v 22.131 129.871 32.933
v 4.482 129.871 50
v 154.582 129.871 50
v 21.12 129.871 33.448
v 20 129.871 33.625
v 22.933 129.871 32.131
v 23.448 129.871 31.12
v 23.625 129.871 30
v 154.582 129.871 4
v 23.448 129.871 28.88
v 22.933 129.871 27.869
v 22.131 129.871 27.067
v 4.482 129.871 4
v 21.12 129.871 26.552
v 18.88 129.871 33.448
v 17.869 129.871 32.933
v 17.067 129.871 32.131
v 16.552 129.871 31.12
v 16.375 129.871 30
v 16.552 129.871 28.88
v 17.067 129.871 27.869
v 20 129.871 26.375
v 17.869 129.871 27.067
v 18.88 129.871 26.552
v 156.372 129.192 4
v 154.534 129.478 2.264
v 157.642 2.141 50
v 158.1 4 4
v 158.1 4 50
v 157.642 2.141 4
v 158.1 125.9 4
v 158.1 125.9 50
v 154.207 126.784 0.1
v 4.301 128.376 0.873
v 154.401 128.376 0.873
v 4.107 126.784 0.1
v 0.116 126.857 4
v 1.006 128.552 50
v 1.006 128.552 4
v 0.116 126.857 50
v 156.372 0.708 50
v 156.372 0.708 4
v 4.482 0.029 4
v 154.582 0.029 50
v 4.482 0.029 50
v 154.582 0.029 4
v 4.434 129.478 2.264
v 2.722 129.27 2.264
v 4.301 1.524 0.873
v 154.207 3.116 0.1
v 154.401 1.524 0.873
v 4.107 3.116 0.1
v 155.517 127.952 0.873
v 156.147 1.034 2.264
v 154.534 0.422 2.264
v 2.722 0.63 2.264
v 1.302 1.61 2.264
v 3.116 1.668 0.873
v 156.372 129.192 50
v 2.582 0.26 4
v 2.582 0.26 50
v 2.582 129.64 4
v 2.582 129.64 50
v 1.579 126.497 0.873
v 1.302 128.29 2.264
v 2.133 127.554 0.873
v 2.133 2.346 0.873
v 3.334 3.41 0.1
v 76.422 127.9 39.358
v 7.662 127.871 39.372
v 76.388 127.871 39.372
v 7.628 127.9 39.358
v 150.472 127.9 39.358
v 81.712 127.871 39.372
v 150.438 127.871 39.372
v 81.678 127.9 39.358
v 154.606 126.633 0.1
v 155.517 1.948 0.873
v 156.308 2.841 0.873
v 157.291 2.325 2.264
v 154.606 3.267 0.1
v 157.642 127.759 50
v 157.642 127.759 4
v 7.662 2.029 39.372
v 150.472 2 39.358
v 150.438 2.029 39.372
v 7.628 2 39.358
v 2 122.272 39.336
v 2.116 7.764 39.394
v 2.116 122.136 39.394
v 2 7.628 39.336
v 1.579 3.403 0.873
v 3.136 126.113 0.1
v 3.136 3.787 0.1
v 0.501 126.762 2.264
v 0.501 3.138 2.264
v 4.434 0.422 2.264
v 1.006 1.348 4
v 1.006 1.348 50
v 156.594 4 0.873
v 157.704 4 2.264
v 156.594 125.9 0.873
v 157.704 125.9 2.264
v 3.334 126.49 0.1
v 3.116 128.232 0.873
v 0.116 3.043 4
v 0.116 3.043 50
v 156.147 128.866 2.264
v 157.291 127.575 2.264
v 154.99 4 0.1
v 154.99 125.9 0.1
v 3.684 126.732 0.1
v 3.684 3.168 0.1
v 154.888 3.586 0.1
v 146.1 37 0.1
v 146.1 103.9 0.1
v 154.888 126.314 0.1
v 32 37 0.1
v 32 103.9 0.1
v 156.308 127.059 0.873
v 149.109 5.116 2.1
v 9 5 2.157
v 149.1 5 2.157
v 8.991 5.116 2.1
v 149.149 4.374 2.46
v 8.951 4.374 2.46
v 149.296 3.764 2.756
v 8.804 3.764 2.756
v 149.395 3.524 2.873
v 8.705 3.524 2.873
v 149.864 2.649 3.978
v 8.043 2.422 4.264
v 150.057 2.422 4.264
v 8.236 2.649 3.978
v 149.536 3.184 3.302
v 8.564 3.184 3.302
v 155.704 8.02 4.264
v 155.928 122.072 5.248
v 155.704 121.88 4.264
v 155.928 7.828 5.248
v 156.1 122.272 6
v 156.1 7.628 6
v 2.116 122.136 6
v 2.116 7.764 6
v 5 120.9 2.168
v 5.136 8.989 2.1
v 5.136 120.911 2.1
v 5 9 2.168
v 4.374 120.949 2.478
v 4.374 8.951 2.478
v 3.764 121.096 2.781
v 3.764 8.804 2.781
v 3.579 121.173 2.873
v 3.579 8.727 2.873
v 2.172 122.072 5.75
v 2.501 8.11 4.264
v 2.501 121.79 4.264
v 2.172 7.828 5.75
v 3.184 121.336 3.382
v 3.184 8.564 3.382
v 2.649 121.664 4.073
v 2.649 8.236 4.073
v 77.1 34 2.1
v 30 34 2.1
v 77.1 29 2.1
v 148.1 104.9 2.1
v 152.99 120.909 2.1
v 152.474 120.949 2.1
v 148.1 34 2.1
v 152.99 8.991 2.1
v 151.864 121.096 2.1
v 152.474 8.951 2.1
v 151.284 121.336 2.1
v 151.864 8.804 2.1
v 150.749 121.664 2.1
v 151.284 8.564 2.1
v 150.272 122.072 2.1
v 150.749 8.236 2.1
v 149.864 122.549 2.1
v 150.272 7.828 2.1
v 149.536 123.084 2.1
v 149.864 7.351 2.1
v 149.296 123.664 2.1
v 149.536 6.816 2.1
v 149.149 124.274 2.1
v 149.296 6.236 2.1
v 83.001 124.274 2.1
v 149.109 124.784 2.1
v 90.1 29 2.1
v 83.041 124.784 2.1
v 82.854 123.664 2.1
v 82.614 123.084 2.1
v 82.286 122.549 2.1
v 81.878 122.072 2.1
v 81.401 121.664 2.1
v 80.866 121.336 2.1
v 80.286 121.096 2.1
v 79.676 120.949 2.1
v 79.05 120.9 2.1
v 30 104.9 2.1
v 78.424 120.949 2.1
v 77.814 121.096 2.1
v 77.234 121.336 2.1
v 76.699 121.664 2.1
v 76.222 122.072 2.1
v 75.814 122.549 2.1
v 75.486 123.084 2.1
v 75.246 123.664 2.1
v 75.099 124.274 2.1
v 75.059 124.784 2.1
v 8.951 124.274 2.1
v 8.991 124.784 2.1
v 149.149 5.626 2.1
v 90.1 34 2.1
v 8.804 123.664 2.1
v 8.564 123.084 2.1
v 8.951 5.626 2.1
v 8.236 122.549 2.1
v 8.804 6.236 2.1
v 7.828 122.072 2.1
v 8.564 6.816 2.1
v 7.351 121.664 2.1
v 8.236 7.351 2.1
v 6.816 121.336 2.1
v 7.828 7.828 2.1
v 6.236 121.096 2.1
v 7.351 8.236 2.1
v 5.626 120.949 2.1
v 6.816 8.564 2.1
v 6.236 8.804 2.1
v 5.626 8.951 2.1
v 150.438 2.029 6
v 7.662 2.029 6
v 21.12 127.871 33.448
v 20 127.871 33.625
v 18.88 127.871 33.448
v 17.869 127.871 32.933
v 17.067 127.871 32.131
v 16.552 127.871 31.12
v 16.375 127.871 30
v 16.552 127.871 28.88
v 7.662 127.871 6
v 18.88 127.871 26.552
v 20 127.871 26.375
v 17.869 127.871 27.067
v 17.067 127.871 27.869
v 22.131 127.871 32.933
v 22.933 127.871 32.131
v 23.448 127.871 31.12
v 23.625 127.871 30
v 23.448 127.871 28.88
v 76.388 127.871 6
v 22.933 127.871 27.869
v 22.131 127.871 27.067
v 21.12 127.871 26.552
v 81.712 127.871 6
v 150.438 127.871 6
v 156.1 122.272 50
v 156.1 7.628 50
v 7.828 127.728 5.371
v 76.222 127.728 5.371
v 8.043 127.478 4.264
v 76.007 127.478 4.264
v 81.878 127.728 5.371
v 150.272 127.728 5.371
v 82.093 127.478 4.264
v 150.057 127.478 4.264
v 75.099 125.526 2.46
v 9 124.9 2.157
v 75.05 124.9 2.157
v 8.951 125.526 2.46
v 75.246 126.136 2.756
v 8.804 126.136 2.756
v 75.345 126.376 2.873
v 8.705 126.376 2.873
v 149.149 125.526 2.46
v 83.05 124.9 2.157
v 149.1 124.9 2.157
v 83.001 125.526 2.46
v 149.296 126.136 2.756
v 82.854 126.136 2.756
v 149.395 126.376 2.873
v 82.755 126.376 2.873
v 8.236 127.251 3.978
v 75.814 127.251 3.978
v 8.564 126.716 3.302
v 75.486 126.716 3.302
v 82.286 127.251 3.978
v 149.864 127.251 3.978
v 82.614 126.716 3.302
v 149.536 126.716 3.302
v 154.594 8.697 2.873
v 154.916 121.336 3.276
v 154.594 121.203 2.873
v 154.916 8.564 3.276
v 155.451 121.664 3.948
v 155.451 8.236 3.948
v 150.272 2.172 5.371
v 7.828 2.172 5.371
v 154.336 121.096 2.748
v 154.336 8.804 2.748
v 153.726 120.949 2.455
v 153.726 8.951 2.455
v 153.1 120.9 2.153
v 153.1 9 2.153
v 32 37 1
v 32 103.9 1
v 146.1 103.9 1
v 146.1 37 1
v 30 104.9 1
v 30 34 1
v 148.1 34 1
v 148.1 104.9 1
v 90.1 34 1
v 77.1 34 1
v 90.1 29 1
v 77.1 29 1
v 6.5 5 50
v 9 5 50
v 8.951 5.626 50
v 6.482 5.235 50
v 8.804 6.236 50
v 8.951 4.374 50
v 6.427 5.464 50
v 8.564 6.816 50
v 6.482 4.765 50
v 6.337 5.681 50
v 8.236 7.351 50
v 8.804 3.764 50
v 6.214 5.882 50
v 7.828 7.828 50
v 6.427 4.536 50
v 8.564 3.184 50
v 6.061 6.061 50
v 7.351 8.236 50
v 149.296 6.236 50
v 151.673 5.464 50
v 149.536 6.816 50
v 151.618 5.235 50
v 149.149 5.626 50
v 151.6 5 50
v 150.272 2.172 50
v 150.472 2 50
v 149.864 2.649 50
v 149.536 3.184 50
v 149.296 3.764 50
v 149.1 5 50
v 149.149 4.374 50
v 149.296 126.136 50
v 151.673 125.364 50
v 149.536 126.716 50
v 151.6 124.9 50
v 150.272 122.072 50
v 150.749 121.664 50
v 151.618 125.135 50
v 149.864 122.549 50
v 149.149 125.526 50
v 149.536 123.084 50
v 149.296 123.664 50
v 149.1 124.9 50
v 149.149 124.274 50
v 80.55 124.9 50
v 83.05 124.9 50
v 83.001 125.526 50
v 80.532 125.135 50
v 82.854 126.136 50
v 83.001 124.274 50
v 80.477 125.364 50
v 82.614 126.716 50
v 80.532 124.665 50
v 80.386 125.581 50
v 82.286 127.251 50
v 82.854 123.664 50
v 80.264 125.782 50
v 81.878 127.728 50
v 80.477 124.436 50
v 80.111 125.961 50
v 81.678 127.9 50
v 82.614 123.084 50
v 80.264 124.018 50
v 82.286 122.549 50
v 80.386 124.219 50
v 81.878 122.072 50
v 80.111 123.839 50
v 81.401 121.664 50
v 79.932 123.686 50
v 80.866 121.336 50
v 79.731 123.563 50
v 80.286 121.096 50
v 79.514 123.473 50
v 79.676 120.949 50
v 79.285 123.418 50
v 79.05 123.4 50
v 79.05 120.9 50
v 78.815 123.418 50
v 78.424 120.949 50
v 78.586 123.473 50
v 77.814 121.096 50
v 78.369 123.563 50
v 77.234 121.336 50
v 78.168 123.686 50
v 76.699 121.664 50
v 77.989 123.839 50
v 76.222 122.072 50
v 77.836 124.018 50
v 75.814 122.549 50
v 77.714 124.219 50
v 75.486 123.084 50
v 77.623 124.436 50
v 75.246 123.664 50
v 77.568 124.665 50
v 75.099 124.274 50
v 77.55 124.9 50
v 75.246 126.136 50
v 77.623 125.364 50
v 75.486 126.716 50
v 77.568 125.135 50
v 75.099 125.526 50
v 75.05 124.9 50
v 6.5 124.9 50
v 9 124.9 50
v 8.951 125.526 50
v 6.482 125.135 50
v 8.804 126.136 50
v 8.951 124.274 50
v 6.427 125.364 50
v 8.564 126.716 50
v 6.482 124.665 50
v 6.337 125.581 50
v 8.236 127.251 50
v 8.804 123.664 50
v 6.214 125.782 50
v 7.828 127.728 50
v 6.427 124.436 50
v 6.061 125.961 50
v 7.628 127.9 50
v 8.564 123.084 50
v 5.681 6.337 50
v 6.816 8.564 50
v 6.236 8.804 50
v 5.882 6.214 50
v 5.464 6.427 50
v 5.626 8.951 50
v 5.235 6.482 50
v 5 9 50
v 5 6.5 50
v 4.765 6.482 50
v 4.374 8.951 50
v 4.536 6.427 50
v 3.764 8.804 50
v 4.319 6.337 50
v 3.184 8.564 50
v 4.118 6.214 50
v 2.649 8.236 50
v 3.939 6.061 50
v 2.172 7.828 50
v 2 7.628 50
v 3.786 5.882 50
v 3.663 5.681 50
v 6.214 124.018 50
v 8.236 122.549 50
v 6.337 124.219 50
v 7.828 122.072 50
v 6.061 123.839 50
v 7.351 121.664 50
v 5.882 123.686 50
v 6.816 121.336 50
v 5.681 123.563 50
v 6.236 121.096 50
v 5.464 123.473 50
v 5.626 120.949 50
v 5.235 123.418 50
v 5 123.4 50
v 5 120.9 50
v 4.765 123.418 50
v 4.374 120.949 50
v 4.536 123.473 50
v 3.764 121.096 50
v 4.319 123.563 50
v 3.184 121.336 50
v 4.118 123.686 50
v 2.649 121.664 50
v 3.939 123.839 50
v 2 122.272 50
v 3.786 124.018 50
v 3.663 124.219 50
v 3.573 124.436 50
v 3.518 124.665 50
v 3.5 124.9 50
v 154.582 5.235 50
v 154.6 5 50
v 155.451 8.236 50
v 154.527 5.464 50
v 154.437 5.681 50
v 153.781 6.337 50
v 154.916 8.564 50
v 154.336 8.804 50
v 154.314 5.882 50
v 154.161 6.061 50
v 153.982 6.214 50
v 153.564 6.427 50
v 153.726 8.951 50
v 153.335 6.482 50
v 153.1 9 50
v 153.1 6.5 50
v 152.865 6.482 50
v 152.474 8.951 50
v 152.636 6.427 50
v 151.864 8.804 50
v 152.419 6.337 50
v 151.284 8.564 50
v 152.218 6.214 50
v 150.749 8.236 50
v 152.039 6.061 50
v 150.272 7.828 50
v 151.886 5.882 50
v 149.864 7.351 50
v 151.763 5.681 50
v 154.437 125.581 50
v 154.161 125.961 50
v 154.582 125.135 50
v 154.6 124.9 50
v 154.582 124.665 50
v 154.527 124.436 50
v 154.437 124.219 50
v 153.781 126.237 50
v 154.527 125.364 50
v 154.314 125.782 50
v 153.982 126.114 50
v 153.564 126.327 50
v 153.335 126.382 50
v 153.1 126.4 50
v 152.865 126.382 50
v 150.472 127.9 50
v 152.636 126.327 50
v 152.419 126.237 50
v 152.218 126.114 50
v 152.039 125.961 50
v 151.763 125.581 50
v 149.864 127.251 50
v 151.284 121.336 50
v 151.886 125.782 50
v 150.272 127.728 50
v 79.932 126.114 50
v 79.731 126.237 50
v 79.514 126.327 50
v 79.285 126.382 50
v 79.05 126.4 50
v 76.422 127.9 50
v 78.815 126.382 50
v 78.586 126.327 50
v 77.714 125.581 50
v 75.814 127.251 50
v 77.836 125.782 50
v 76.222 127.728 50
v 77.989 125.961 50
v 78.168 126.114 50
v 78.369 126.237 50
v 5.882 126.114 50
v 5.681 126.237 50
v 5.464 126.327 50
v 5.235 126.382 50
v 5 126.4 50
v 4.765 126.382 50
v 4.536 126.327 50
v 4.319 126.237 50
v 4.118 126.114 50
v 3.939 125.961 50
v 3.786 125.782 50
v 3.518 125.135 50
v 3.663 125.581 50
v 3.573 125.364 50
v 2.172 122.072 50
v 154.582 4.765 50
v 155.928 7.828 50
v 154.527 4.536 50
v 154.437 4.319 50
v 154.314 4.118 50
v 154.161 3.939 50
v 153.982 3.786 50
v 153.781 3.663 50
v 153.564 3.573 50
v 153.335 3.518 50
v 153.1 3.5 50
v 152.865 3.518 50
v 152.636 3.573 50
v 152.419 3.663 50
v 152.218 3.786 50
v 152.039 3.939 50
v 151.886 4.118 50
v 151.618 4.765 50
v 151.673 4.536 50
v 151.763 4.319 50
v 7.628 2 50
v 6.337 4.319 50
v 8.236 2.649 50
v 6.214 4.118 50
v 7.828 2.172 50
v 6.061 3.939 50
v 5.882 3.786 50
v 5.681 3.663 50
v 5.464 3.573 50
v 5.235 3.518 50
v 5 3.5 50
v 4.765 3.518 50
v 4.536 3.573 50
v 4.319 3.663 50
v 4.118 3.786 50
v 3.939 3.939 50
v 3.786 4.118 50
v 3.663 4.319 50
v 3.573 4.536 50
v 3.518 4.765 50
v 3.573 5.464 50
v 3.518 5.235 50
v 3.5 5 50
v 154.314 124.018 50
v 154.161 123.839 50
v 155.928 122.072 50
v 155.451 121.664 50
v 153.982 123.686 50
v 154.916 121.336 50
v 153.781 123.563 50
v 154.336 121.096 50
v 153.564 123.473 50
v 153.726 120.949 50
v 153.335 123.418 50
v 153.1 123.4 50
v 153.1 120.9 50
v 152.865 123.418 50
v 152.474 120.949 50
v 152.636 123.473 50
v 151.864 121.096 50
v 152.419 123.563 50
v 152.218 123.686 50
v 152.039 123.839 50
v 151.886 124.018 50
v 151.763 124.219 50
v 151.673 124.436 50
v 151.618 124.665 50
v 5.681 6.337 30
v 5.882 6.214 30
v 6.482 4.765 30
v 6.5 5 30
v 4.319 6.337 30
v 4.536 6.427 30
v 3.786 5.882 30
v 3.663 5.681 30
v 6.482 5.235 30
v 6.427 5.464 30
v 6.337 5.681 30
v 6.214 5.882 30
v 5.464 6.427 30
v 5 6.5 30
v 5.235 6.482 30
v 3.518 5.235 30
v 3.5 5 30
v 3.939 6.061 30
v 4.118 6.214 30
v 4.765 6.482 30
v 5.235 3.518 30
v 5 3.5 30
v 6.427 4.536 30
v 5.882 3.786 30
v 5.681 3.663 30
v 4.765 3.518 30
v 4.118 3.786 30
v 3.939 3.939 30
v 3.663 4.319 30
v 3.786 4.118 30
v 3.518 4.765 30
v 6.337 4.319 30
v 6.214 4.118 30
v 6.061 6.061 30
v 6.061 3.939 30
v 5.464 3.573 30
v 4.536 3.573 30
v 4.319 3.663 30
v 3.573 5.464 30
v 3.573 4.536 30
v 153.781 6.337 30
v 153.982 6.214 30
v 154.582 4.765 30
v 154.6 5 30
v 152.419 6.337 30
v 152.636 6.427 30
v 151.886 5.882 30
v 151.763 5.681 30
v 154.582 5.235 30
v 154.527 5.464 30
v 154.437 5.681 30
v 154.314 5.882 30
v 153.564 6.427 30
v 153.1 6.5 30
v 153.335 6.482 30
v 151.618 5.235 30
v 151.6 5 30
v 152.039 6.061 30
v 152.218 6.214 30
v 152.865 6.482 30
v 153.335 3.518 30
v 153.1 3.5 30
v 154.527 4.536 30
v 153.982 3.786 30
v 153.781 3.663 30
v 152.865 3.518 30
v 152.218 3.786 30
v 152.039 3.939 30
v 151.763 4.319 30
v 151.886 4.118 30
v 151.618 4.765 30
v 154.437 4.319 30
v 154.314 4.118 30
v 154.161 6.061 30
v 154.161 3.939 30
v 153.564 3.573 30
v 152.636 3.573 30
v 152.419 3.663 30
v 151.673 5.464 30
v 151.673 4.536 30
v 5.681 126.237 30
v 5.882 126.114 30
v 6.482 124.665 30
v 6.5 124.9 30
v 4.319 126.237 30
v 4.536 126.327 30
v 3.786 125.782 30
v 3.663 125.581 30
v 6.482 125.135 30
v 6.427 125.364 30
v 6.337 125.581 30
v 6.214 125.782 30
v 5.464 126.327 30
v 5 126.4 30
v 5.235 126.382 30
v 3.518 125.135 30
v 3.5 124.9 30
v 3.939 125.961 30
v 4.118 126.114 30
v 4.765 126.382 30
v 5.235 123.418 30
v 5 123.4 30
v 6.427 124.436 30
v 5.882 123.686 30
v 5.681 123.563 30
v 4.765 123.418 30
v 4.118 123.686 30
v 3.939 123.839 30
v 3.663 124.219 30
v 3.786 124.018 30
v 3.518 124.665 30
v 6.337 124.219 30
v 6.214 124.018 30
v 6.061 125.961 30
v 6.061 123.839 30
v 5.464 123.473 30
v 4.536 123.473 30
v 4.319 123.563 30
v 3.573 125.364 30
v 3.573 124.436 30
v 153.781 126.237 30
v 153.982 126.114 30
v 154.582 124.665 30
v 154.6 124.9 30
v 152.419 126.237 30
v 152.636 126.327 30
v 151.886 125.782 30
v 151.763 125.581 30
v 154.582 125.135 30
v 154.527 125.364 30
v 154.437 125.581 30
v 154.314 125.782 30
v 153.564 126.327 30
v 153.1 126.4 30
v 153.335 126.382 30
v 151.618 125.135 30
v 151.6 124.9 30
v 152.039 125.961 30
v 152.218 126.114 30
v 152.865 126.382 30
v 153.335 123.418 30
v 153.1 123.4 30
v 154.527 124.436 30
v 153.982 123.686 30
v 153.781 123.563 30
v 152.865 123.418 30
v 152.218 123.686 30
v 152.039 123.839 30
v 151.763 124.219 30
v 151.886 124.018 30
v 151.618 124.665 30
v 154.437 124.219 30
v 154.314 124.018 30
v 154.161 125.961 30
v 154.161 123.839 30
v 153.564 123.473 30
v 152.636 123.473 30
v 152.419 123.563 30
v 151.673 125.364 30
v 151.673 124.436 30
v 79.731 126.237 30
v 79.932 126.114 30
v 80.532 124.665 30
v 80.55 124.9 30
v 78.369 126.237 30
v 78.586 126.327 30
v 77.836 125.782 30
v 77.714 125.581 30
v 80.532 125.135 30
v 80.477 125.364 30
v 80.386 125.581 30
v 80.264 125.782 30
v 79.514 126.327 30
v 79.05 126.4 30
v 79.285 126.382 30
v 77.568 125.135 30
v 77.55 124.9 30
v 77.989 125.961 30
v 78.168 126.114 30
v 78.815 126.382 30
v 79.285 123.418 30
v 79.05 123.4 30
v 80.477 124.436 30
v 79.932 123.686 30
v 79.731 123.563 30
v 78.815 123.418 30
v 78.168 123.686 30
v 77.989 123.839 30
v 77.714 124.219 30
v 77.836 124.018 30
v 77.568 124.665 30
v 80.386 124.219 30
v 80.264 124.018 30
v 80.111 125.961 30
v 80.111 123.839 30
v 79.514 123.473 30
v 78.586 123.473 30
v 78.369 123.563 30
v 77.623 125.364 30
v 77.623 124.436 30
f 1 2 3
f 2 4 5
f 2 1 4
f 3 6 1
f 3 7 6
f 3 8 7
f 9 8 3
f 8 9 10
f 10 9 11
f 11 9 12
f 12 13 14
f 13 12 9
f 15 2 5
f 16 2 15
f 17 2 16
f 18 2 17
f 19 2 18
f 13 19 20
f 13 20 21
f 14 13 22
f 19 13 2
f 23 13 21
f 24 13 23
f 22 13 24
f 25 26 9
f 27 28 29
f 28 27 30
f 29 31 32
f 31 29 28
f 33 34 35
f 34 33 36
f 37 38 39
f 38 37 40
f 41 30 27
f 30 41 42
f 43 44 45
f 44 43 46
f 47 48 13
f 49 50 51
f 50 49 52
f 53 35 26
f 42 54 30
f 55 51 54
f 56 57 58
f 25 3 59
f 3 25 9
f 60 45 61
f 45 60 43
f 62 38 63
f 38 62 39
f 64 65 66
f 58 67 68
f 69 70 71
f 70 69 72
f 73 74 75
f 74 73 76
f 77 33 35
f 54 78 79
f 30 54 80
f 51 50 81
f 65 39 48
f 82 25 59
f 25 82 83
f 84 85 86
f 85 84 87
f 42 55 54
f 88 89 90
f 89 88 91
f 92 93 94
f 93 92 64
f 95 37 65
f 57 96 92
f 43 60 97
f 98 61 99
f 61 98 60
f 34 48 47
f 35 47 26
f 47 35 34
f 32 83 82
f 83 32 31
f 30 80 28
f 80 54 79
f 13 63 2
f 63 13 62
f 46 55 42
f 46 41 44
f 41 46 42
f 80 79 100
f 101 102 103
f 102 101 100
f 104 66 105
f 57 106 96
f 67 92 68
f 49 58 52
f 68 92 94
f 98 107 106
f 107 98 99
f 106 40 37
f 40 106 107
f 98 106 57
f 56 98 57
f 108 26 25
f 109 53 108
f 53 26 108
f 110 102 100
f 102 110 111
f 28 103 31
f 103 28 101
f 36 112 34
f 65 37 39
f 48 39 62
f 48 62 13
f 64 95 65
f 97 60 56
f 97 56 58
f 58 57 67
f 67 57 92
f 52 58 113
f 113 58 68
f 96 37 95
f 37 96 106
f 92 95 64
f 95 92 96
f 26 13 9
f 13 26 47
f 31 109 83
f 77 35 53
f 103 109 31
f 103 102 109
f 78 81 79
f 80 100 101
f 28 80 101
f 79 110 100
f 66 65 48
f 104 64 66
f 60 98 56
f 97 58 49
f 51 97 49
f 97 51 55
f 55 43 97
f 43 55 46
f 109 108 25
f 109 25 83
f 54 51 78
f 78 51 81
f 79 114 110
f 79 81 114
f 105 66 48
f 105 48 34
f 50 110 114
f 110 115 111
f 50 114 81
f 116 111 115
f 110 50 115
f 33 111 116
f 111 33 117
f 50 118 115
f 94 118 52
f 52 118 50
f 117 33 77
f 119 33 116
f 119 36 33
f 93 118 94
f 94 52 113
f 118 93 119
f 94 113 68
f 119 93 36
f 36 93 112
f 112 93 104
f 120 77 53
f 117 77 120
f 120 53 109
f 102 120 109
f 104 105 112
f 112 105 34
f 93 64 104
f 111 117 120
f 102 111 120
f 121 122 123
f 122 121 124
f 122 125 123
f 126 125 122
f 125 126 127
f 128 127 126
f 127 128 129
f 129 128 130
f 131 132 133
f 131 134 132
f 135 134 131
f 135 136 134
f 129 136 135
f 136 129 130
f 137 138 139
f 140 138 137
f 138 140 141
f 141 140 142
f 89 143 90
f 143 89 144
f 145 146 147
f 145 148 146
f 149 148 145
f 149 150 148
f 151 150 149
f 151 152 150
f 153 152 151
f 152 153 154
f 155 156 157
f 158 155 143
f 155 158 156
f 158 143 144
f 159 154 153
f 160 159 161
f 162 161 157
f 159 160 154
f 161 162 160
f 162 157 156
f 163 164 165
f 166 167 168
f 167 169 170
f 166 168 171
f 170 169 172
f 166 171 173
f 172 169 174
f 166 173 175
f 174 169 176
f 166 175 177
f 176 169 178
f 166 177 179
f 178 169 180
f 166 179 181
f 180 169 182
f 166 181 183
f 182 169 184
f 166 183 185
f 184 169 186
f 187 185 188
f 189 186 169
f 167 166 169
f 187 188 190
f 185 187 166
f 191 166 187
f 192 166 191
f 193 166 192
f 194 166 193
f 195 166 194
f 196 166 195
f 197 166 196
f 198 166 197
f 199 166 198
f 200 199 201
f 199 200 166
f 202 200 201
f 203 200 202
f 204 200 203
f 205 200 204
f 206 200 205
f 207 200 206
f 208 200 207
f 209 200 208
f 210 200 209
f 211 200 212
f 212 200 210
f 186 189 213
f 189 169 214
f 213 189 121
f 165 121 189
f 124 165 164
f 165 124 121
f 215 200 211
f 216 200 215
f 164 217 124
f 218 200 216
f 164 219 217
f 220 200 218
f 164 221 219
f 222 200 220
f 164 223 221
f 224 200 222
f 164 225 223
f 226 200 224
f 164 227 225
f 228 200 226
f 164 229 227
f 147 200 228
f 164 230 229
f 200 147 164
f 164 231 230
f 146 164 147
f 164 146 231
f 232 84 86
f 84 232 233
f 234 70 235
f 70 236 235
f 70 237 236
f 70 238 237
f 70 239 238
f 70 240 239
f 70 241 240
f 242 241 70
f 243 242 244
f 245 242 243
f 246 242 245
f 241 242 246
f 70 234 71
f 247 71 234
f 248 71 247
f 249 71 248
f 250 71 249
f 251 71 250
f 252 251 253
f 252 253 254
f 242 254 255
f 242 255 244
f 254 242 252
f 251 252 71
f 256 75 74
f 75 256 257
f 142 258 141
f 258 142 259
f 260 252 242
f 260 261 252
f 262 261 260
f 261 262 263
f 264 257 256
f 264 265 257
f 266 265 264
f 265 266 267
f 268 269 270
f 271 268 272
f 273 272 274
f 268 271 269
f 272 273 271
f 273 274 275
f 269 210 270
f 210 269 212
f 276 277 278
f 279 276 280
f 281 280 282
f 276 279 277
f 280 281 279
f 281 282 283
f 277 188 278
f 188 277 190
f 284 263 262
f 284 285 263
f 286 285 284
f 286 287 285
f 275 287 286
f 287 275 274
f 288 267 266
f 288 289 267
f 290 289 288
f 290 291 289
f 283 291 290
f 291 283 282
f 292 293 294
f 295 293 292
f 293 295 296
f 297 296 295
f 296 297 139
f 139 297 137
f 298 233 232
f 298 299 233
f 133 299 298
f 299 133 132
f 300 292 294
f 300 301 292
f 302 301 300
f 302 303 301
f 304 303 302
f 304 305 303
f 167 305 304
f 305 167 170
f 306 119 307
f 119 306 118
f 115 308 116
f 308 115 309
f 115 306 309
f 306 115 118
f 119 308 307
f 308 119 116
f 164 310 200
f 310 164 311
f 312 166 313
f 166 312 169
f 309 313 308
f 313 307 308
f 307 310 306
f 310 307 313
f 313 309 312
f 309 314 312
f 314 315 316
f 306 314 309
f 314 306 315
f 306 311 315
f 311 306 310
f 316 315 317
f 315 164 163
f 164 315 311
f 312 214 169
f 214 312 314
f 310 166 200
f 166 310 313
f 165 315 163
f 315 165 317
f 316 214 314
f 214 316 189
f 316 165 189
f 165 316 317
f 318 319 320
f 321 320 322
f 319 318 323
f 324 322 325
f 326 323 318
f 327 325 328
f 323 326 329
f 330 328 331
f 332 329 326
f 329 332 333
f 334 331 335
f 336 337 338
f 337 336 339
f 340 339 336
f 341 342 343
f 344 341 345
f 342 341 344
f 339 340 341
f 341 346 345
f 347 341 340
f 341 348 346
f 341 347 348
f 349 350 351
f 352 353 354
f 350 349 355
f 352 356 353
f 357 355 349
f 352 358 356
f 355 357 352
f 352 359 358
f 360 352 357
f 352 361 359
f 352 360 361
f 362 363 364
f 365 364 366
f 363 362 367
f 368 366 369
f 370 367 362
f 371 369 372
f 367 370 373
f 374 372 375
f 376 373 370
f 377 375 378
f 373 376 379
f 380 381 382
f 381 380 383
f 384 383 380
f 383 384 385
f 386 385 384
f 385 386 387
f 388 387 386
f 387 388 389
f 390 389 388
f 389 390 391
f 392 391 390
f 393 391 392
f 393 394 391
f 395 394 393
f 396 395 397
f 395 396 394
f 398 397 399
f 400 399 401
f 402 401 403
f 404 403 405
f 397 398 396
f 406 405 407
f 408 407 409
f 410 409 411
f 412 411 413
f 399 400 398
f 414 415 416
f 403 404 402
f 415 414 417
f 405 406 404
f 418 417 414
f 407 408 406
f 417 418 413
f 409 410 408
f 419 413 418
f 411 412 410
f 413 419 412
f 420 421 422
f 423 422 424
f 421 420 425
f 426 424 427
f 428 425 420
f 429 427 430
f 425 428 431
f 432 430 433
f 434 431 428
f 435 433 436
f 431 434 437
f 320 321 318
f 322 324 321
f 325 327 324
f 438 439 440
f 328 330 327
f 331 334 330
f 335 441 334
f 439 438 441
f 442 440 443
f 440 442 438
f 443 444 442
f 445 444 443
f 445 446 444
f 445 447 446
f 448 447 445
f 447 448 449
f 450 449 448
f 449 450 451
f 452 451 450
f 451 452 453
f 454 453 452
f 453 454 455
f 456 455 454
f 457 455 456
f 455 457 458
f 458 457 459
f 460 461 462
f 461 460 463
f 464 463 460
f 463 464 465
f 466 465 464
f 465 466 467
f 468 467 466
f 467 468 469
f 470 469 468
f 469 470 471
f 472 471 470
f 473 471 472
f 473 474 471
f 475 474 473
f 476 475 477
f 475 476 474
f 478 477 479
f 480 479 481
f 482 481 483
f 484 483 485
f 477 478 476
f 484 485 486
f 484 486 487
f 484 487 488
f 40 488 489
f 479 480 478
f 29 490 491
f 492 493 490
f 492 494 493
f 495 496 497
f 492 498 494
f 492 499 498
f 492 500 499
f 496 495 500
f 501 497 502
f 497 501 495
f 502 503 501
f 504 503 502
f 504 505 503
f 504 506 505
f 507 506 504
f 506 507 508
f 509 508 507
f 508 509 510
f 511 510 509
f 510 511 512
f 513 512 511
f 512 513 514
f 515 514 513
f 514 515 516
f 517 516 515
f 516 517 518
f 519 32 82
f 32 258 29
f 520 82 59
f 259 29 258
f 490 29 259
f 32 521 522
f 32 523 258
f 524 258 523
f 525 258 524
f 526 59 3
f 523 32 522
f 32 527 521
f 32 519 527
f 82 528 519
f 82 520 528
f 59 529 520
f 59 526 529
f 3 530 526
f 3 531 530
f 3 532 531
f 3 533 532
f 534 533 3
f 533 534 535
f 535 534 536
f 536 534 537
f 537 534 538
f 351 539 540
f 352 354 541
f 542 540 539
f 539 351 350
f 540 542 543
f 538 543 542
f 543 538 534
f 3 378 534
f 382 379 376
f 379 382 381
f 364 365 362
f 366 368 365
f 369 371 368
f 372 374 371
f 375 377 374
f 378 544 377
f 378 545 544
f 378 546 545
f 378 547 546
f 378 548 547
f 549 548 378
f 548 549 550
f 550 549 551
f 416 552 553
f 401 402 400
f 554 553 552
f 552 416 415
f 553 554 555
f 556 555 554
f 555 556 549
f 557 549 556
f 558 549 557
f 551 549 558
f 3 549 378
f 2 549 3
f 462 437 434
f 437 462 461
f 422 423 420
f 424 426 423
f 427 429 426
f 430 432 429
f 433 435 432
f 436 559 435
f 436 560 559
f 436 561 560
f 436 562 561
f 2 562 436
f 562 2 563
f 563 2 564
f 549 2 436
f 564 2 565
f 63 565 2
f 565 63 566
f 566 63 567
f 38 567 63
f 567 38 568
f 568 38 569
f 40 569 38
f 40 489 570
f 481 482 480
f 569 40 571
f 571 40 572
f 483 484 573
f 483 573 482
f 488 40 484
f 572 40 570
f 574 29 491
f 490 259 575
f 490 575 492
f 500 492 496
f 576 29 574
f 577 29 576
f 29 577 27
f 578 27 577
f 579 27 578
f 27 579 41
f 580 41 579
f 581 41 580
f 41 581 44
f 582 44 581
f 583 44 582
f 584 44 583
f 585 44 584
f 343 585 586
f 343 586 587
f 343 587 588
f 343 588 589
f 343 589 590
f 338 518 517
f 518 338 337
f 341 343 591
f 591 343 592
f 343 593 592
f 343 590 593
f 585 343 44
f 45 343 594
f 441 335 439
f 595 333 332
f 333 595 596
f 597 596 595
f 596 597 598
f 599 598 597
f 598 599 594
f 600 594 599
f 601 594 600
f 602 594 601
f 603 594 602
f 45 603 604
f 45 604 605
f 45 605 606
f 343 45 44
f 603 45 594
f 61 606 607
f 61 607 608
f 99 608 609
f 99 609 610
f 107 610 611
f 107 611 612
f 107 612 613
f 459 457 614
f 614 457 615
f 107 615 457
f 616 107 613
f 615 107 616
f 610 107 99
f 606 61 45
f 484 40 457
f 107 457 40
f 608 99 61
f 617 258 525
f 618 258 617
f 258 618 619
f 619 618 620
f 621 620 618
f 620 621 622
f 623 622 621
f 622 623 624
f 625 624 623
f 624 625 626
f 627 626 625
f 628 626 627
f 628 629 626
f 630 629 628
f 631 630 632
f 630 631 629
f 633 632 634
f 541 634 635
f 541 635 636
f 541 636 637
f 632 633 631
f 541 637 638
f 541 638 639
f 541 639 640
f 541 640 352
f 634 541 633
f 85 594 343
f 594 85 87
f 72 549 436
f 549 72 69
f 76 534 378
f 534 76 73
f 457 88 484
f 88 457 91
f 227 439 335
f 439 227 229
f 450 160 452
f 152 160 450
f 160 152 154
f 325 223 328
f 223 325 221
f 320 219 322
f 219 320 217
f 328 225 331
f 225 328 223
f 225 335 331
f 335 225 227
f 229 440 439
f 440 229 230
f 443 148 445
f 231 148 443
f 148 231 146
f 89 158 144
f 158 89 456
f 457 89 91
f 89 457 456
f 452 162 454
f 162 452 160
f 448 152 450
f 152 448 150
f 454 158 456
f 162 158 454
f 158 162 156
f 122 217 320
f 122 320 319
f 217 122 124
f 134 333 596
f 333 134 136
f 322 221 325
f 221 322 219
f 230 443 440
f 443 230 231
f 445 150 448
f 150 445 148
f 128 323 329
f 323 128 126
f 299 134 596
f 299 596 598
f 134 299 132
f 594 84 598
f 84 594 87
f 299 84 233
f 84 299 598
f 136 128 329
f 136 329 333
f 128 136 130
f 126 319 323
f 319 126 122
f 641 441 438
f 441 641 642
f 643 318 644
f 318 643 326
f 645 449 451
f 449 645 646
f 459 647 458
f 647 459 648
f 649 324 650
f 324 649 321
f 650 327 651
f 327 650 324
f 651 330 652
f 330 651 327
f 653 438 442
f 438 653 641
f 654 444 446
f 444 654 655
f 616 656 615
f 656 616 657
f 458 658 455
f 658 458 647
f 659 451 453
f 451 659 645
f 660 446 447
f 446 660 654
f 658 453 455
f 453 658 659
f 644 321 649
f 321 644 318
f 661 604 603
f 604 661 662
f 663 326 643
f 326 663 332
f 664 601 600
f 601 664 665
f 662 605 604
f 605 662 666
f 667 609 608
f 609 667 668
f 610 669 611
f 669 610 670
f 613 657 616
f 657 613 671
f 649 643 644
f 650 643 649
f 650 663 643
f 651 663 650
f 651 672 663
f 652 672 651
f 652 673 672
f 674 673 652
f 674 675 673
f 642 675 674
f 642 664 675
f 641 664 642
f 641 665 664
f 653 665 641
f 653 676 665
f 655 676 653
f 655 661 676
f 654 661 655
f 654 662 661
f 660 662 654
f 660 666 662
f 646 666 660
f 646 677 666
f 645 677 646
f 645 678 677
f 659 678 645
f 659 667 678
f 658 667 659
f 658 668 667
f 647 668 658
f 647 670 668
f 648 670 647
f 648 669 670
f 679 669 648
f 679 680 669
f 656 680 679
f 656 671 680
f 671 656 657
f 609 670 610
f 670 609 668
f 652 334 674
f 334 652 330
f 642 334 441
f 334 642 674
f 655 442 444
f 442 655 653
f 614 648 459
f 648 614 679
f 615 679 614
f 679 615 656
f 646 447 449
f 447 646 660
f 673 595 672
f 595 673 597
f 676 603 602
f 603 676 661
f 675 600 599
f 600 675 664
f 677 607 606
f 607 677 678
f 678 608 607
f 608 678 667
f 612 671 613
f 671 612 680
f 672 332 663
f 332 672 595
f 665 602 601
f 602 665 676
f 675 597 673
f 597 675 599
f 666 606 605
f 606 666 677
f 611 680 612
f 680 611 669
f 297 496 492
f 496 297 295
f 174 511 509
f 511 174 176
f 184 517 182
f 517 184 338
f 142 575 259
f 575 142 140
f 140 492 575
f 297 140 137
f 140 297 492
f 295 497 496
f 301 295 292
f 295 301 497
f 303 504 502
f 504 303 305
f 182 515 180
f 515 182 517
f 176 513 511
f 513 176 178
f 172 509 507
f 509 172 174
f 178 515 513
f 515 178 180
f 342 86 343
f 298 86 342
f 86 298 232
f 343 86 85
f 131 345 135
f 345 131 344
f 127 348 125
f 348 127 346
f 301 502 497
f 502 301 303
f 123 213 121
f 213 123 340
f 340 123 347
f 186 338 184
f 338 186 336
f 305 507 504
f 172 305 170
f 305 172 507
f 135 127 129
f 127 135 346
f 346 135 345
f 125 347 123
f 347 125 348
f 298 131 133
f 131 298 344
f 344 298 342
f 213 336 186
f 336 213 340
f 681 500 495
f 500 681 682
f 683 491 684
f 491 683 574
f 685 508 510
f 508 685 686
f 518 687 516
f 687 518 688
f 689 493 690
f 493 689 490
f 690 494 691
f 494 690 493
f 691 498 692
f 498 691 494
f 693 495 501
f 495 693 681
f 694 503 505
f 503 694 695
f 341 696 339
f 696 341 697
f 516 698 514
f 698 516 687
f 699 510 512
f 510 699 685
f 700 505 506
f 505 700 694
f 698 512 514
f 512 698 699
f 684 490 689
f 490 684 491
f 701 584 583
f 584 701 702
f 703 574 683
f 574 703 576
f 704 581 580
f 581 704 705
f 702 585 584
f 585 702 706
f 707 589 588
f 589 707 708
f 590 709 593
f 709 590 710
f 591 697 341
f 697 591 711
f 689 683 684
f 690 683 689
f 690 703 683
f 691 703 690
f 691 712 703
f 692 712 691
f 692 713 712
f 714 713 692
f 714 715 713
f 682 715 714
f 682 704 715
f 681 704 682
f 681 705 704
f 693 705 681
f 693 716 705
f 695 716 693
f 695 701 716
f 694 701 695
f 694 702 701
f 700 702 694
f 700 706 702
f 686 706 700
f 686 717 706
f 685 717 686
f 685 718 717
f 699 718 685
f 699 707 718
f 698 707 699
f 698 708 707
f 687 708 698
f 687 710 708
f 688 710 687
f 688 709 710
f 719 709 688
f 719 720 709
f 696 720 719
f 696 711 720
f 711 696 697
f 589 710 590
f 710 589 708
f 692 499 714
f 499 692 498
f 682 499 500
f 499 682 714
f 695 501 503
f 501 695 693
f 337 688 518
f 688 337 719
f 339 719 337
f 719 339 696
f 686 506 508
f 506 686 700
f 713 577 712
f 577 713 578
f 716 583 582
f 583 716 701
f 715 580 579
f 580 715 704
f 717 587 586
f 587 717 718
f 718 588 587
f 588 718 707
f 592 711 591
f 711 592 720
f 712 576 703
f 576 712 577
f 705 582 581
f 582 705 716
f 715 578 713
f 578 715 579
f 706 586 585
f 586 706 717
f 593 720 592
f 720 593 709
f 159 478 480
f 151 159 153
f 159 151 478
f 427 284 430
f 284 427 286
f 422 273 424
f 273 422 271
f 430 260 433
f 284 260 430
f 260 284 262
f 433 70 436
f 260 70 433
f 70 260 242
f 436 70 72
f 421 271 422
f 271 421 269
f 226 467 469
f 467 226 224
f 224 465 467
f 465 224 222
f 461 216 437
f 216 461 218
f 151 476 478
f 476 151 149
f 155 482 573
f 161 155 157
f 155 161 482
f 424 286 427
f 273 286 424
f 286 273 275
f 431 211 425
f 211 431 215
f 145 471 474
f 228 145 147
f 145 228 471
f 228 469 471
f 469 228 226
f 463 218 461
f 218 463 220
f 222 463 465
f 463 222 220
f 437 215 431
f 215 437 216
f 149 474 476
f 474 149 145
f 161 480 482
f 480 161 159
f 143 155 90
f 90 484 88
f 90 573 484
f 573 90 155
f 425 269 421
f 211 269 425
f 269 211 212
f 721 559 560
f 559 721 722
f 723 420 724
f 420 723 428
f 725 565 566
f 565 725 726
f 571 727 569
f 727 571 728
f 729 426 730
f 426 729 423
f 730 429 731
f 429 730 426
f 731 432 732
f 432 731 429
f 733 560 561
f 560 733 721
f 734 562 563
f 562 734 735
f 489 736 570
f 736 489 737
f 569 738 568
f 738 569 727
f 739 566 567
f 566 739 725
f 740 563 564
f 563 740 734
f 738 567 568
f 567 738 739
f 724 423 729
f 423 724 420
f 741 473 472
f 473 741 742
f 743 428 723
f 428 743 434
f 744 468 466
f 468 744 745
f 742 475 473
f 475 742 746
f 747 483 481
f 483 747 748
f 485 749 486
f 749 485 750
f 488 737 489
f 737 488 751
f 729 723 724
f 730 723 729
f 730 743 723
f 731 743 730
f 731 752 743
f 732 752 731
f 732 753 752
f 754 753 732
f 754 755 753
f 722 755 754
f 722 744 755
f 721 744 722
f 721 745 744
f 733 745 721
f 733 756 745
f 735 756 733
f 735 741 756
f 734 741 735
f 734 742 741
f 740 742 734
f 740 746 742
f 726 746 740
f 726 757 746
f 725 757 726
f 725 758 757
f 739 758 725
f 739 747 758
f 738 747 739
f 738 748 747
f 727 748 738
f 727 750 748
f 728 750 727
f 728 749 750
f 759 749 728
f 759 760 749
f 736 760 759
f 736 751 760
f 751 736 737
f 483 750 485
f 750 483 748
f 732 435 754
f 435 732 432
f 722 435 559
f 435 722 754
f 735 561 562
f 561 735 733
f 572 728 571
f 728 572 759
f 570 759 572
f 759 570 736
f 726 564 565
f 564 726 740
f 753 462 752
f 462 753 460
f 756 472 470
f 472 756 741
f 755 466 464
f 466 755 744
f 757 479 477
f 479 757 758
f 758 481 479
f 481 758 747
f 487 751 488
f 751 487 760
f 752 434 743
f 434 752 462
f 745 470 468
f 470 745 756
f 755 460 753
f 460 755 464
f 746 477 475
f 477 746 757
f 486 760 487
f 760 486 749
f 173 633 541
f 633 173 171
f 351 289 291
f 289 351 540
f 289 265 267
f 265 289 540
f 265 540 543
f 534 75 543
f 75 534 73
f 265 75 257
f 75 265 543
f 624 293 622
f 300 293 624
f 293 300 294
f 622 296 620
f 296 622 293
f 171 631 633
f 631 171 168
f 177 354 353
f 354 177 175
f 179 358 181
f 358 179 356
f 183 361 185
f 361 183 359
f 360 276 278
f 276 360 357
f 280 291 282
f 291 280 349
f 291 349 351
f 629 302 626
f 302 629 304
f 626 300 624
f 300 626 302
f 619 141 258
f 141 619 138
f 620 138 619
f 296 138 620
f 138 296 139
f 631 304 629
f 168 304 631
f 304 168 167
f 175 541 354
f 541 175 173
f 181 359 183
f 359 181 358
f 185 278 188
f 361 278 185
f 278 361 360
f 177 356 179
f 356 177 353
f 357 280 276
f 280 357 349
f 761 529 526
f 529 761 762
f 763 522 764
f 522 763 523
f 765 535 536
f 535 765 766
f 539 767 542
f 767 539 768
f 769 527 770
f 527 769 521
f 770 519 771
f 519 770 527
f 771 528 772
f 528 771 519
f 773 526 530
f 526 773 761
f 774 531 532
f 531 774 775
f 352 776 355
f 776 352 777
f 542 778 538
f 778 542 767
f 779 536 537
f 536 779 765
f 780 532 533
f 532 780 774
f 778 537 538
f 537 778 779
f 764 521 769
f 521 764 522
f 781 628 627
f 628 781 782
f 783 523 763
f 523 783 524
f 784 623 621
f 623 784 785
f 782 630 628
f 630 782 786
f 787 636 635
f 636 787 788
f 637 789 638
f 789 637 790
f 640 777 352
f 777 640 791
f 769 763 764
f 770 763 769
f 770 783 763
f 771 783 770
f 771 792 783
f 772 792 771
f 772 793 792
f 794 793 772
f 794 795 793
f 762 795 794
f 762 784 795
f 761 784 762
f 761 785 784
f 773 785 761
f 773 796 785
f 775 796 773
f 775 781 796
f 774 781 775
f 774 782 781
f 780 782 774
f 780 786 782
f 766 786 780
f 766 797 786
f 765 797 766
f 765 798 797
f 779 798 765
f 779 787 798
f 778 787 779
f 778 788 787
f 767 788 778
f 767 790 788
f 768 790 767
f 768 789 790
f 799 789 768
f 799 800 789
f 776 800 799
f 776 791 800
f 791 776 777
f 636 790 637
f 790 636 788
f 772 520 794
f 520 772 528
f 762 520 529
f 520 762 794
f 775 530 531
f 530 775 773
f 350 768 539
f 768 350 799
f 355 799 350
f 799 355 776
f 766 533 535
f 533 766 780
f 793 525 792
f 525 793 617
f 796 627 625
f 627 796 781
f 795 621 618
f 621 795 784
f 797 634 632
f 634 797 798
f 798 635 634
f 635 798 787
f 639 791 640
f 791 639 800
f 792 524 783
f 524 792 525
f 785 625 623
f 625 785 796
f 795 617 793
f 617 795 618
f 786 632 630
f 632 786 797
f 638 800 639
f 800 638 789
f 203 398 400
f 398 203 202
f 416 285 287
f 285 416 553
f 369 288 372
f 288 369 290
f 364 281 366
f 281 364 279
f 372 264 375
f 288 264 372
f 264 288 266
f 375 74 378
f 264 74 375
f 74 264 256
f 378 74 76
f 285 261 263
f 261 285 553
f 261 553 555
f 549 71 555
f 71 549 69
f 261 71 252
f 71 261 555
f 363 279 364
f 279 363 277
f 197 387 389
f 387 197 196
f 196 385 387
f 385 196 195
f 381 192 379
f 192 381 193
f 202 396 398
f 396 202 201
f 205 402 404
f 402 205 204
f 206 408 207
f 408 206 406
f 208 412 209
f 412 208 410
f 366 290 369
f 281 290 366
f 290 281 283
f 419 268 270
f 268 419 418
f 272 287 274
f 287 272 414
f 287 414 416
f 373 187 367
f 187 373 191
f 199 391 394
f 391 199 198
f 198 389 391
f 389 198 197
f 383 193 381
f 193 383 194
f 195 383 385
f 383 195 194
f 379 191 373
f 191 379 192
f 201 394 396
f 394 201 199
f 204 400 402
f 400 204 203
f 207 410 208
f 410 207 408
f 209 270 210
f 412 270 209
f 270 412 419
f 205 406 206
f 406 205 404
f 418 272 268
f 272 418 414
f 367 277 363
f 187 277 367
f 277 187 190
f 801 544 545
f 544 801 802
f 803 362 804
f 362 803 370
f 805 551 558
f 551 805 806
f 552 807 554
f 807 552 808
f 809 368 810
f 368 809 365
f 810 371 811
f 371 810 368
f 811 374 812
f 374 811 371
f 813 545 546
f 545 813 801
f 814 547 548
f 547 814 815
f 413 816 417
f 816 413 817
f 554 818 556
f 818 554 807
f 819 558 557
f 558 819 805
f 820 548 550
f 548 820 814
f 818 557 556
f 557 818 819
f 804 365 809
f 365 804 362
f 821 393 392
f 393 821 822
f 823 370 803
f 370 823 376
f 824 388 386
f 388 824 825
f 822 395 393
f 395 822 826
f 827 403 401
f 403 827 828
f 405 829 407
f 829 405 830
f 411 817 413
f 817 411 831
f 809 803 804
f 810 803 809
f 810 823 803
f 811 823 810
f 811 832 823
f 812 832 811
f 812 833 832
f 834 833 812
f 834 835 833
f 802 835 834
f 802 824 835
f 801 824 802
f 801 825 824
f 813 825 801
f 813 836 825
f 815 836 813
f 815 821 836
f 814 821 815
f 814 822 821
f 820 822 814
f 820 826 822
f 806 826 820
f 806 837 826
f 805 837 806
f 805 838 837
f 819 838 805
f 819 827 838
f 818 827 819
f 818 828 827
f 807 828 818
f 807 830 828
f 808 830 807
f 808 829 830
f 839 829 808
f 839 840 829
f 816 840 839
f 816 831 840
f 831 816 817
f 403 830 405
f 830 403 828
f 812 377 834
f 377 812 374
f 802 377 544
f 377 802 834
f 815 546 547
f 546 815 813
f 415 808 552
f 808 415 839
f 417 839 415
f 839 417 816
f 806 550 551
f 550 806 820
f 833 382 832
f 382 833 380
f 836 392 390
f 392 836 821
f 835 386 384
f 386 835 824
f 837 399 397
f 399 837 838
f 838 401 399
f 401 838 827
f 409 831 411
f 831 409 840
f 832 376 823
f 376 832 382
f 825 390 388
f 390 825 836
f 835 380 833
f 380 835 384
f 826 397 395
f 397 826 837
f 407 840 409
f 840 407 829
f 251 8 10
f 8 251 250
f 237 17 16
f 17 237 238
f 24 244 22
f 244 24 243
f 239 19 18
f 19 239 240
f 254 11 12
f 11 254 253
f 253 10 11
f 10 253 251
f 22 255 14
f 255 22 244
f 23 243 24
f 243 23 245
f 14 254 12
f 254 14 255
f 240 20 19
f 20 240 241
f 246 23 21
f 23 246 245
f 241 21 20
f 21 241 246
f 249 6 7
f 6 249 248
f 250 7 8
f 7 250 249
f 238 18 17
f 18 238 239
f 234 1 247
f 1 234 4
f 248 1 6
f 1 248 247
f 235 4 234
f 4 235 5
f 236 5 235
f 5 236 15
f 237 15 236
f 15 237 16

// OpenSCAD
// file: params.scad
module roundedRect(size, radius)
    {
    x = size[0];
    y = size[1];
    z = size[2];

    linear_extrude(height=z)
    hull()
    {
        // place 4 circles in the corners, with the given radius
        translate([radius, radius, 0])
        circle(r=radius);

        translate([x - radius, radius, 0])
        circle(r=radius);

        translate([radius, y - radius, 0])
        circle(r=radius);

        translate([x - radius, y - radius, 0])
        circle(r=radius);
    }
}

module roundedPoly(size, radius)
{
	x = size[0];
	y = size[1];
	z = size[2];

	hull()
	{
		// place 4 circles in the bottom corners, with the given radius
		translate([radius, radius, radius])
		sphere(r=radius);
	
		translate([x - radius, radius, radius])
		sphere(r=radius);
	
		translate([radius, y - radius, radius])
		sphere(r=radius);
	
		translate([x - radius, y - radius, radius])
		sphere(r=radius);
        
        // place 4 circles in the top corners, with the given radius
		translate([radius, radius, z - radius])
		sphere(r=radius);
	
		translate([x - radius, radius, z - radius])
		sphere(r=radius);
	
		translate([radius, y - radius, z - radius])
		sphere(r=radius);
	
		translate([x - radius, y - radius, z - radius])
		sphere(r=radius);
	}
}

module standoff(radius, height, inner_radius, depth=10) {
    difference() {
        cylinder(h=height, r=radius, $fn=40);
        translate([0, 0, height-20]) {
            cylinder(h=20.1, r=inner_radius, $fn=40);
        }
    }
}
    

left_margin = 10;
right_margin = 30;
top_margin = 25;
bottom_margin = 34;
screen_width = 118.1;
screen_height = 70.9;
height = 2;

total_width = left_margin+right_margin+screen_width;
total_height = top_margin+bottom_margin+screen_height;

ribbon_cable_width=13;

wall_thickness = 2;
depth = 50;
standoff_od = 4;

camera_offset_x = 105;
camera_offset_y = 12;
camera_standoff_height = 4.7;

sensor_offset_x = 135;
sensor_offset_y = 15;
// main file
include <params.scad>

difference() {

union() {

difference() {
    roundedPoly([total_width, total_height, depth-10], 4);

    translate([wall_thickness, wall_thickness, height]) {
        roundedPoly([total_width - 2 * wall_thickness, total_height - 2 * wall_thickness, depth*2], 4);
    }
    
    translate([right_margin+2, bottom_margin+3, -0.1]) {
        cube([screen_width-4, screen_height-4, height+0.2]);
    }
    
    translate([right_margin, bottom_margin, 1.0]) {
        cube([screen_width, screen_height, height+0.2]);
    }
    
    translate([right_margin+screen_width-58-ribbon_cable_width, bottom_margin-5, 1.0]) {
        cube([ribbon_cable_width, 5.1, height+0.2]);
    }
    
      
}



// shell

difference() {

    translate([0, 0, 5]) {
            roundedRect([total_width, total_height, depth-5], 4);
        }
        
    translate([wall_thickness, wall_thickness, 4.9]) {
        roundedRect([left_margin+screen_width+right_margin-2*wall_thickness, top_margin+screen_height+bottom_margin-2*wall_thickness, depth + .2], 5);
    }
    
      
    
}

translate([1+standoff_od, 1+standoff_od, height]) {
    standoff(standoff_od, depth-height, 1.5, depth=5);
}

translate([total_width-1-standoff_od, 1+standoff_od, height]) {
    standoff(standoff_od, depth-height, 1.5, depth=5);
}

translate([1+standoff_od, total_height-1-standoff_od, height]) {
    standoff(standoff_od, depth-height, 1.5, depth=5);
}

translate([total_width-1-standoff_od, total_height-1-standoff_od, height]) {
    standoff(standoff_od, depth-height, 1.5, depth=5);
}

translate([total_width/2, total_height-1-standoff_od, height]) {
    standoff(standoff_od, depth-height, 1.5, depth=5);
}

}

translate([20, total_height-wall_thickness-0.1, 30]) {
    rotate([-90, 0, 0]) {
        cylinder(r=7.25/2, h=10, $fn=20);
    }
}

}
